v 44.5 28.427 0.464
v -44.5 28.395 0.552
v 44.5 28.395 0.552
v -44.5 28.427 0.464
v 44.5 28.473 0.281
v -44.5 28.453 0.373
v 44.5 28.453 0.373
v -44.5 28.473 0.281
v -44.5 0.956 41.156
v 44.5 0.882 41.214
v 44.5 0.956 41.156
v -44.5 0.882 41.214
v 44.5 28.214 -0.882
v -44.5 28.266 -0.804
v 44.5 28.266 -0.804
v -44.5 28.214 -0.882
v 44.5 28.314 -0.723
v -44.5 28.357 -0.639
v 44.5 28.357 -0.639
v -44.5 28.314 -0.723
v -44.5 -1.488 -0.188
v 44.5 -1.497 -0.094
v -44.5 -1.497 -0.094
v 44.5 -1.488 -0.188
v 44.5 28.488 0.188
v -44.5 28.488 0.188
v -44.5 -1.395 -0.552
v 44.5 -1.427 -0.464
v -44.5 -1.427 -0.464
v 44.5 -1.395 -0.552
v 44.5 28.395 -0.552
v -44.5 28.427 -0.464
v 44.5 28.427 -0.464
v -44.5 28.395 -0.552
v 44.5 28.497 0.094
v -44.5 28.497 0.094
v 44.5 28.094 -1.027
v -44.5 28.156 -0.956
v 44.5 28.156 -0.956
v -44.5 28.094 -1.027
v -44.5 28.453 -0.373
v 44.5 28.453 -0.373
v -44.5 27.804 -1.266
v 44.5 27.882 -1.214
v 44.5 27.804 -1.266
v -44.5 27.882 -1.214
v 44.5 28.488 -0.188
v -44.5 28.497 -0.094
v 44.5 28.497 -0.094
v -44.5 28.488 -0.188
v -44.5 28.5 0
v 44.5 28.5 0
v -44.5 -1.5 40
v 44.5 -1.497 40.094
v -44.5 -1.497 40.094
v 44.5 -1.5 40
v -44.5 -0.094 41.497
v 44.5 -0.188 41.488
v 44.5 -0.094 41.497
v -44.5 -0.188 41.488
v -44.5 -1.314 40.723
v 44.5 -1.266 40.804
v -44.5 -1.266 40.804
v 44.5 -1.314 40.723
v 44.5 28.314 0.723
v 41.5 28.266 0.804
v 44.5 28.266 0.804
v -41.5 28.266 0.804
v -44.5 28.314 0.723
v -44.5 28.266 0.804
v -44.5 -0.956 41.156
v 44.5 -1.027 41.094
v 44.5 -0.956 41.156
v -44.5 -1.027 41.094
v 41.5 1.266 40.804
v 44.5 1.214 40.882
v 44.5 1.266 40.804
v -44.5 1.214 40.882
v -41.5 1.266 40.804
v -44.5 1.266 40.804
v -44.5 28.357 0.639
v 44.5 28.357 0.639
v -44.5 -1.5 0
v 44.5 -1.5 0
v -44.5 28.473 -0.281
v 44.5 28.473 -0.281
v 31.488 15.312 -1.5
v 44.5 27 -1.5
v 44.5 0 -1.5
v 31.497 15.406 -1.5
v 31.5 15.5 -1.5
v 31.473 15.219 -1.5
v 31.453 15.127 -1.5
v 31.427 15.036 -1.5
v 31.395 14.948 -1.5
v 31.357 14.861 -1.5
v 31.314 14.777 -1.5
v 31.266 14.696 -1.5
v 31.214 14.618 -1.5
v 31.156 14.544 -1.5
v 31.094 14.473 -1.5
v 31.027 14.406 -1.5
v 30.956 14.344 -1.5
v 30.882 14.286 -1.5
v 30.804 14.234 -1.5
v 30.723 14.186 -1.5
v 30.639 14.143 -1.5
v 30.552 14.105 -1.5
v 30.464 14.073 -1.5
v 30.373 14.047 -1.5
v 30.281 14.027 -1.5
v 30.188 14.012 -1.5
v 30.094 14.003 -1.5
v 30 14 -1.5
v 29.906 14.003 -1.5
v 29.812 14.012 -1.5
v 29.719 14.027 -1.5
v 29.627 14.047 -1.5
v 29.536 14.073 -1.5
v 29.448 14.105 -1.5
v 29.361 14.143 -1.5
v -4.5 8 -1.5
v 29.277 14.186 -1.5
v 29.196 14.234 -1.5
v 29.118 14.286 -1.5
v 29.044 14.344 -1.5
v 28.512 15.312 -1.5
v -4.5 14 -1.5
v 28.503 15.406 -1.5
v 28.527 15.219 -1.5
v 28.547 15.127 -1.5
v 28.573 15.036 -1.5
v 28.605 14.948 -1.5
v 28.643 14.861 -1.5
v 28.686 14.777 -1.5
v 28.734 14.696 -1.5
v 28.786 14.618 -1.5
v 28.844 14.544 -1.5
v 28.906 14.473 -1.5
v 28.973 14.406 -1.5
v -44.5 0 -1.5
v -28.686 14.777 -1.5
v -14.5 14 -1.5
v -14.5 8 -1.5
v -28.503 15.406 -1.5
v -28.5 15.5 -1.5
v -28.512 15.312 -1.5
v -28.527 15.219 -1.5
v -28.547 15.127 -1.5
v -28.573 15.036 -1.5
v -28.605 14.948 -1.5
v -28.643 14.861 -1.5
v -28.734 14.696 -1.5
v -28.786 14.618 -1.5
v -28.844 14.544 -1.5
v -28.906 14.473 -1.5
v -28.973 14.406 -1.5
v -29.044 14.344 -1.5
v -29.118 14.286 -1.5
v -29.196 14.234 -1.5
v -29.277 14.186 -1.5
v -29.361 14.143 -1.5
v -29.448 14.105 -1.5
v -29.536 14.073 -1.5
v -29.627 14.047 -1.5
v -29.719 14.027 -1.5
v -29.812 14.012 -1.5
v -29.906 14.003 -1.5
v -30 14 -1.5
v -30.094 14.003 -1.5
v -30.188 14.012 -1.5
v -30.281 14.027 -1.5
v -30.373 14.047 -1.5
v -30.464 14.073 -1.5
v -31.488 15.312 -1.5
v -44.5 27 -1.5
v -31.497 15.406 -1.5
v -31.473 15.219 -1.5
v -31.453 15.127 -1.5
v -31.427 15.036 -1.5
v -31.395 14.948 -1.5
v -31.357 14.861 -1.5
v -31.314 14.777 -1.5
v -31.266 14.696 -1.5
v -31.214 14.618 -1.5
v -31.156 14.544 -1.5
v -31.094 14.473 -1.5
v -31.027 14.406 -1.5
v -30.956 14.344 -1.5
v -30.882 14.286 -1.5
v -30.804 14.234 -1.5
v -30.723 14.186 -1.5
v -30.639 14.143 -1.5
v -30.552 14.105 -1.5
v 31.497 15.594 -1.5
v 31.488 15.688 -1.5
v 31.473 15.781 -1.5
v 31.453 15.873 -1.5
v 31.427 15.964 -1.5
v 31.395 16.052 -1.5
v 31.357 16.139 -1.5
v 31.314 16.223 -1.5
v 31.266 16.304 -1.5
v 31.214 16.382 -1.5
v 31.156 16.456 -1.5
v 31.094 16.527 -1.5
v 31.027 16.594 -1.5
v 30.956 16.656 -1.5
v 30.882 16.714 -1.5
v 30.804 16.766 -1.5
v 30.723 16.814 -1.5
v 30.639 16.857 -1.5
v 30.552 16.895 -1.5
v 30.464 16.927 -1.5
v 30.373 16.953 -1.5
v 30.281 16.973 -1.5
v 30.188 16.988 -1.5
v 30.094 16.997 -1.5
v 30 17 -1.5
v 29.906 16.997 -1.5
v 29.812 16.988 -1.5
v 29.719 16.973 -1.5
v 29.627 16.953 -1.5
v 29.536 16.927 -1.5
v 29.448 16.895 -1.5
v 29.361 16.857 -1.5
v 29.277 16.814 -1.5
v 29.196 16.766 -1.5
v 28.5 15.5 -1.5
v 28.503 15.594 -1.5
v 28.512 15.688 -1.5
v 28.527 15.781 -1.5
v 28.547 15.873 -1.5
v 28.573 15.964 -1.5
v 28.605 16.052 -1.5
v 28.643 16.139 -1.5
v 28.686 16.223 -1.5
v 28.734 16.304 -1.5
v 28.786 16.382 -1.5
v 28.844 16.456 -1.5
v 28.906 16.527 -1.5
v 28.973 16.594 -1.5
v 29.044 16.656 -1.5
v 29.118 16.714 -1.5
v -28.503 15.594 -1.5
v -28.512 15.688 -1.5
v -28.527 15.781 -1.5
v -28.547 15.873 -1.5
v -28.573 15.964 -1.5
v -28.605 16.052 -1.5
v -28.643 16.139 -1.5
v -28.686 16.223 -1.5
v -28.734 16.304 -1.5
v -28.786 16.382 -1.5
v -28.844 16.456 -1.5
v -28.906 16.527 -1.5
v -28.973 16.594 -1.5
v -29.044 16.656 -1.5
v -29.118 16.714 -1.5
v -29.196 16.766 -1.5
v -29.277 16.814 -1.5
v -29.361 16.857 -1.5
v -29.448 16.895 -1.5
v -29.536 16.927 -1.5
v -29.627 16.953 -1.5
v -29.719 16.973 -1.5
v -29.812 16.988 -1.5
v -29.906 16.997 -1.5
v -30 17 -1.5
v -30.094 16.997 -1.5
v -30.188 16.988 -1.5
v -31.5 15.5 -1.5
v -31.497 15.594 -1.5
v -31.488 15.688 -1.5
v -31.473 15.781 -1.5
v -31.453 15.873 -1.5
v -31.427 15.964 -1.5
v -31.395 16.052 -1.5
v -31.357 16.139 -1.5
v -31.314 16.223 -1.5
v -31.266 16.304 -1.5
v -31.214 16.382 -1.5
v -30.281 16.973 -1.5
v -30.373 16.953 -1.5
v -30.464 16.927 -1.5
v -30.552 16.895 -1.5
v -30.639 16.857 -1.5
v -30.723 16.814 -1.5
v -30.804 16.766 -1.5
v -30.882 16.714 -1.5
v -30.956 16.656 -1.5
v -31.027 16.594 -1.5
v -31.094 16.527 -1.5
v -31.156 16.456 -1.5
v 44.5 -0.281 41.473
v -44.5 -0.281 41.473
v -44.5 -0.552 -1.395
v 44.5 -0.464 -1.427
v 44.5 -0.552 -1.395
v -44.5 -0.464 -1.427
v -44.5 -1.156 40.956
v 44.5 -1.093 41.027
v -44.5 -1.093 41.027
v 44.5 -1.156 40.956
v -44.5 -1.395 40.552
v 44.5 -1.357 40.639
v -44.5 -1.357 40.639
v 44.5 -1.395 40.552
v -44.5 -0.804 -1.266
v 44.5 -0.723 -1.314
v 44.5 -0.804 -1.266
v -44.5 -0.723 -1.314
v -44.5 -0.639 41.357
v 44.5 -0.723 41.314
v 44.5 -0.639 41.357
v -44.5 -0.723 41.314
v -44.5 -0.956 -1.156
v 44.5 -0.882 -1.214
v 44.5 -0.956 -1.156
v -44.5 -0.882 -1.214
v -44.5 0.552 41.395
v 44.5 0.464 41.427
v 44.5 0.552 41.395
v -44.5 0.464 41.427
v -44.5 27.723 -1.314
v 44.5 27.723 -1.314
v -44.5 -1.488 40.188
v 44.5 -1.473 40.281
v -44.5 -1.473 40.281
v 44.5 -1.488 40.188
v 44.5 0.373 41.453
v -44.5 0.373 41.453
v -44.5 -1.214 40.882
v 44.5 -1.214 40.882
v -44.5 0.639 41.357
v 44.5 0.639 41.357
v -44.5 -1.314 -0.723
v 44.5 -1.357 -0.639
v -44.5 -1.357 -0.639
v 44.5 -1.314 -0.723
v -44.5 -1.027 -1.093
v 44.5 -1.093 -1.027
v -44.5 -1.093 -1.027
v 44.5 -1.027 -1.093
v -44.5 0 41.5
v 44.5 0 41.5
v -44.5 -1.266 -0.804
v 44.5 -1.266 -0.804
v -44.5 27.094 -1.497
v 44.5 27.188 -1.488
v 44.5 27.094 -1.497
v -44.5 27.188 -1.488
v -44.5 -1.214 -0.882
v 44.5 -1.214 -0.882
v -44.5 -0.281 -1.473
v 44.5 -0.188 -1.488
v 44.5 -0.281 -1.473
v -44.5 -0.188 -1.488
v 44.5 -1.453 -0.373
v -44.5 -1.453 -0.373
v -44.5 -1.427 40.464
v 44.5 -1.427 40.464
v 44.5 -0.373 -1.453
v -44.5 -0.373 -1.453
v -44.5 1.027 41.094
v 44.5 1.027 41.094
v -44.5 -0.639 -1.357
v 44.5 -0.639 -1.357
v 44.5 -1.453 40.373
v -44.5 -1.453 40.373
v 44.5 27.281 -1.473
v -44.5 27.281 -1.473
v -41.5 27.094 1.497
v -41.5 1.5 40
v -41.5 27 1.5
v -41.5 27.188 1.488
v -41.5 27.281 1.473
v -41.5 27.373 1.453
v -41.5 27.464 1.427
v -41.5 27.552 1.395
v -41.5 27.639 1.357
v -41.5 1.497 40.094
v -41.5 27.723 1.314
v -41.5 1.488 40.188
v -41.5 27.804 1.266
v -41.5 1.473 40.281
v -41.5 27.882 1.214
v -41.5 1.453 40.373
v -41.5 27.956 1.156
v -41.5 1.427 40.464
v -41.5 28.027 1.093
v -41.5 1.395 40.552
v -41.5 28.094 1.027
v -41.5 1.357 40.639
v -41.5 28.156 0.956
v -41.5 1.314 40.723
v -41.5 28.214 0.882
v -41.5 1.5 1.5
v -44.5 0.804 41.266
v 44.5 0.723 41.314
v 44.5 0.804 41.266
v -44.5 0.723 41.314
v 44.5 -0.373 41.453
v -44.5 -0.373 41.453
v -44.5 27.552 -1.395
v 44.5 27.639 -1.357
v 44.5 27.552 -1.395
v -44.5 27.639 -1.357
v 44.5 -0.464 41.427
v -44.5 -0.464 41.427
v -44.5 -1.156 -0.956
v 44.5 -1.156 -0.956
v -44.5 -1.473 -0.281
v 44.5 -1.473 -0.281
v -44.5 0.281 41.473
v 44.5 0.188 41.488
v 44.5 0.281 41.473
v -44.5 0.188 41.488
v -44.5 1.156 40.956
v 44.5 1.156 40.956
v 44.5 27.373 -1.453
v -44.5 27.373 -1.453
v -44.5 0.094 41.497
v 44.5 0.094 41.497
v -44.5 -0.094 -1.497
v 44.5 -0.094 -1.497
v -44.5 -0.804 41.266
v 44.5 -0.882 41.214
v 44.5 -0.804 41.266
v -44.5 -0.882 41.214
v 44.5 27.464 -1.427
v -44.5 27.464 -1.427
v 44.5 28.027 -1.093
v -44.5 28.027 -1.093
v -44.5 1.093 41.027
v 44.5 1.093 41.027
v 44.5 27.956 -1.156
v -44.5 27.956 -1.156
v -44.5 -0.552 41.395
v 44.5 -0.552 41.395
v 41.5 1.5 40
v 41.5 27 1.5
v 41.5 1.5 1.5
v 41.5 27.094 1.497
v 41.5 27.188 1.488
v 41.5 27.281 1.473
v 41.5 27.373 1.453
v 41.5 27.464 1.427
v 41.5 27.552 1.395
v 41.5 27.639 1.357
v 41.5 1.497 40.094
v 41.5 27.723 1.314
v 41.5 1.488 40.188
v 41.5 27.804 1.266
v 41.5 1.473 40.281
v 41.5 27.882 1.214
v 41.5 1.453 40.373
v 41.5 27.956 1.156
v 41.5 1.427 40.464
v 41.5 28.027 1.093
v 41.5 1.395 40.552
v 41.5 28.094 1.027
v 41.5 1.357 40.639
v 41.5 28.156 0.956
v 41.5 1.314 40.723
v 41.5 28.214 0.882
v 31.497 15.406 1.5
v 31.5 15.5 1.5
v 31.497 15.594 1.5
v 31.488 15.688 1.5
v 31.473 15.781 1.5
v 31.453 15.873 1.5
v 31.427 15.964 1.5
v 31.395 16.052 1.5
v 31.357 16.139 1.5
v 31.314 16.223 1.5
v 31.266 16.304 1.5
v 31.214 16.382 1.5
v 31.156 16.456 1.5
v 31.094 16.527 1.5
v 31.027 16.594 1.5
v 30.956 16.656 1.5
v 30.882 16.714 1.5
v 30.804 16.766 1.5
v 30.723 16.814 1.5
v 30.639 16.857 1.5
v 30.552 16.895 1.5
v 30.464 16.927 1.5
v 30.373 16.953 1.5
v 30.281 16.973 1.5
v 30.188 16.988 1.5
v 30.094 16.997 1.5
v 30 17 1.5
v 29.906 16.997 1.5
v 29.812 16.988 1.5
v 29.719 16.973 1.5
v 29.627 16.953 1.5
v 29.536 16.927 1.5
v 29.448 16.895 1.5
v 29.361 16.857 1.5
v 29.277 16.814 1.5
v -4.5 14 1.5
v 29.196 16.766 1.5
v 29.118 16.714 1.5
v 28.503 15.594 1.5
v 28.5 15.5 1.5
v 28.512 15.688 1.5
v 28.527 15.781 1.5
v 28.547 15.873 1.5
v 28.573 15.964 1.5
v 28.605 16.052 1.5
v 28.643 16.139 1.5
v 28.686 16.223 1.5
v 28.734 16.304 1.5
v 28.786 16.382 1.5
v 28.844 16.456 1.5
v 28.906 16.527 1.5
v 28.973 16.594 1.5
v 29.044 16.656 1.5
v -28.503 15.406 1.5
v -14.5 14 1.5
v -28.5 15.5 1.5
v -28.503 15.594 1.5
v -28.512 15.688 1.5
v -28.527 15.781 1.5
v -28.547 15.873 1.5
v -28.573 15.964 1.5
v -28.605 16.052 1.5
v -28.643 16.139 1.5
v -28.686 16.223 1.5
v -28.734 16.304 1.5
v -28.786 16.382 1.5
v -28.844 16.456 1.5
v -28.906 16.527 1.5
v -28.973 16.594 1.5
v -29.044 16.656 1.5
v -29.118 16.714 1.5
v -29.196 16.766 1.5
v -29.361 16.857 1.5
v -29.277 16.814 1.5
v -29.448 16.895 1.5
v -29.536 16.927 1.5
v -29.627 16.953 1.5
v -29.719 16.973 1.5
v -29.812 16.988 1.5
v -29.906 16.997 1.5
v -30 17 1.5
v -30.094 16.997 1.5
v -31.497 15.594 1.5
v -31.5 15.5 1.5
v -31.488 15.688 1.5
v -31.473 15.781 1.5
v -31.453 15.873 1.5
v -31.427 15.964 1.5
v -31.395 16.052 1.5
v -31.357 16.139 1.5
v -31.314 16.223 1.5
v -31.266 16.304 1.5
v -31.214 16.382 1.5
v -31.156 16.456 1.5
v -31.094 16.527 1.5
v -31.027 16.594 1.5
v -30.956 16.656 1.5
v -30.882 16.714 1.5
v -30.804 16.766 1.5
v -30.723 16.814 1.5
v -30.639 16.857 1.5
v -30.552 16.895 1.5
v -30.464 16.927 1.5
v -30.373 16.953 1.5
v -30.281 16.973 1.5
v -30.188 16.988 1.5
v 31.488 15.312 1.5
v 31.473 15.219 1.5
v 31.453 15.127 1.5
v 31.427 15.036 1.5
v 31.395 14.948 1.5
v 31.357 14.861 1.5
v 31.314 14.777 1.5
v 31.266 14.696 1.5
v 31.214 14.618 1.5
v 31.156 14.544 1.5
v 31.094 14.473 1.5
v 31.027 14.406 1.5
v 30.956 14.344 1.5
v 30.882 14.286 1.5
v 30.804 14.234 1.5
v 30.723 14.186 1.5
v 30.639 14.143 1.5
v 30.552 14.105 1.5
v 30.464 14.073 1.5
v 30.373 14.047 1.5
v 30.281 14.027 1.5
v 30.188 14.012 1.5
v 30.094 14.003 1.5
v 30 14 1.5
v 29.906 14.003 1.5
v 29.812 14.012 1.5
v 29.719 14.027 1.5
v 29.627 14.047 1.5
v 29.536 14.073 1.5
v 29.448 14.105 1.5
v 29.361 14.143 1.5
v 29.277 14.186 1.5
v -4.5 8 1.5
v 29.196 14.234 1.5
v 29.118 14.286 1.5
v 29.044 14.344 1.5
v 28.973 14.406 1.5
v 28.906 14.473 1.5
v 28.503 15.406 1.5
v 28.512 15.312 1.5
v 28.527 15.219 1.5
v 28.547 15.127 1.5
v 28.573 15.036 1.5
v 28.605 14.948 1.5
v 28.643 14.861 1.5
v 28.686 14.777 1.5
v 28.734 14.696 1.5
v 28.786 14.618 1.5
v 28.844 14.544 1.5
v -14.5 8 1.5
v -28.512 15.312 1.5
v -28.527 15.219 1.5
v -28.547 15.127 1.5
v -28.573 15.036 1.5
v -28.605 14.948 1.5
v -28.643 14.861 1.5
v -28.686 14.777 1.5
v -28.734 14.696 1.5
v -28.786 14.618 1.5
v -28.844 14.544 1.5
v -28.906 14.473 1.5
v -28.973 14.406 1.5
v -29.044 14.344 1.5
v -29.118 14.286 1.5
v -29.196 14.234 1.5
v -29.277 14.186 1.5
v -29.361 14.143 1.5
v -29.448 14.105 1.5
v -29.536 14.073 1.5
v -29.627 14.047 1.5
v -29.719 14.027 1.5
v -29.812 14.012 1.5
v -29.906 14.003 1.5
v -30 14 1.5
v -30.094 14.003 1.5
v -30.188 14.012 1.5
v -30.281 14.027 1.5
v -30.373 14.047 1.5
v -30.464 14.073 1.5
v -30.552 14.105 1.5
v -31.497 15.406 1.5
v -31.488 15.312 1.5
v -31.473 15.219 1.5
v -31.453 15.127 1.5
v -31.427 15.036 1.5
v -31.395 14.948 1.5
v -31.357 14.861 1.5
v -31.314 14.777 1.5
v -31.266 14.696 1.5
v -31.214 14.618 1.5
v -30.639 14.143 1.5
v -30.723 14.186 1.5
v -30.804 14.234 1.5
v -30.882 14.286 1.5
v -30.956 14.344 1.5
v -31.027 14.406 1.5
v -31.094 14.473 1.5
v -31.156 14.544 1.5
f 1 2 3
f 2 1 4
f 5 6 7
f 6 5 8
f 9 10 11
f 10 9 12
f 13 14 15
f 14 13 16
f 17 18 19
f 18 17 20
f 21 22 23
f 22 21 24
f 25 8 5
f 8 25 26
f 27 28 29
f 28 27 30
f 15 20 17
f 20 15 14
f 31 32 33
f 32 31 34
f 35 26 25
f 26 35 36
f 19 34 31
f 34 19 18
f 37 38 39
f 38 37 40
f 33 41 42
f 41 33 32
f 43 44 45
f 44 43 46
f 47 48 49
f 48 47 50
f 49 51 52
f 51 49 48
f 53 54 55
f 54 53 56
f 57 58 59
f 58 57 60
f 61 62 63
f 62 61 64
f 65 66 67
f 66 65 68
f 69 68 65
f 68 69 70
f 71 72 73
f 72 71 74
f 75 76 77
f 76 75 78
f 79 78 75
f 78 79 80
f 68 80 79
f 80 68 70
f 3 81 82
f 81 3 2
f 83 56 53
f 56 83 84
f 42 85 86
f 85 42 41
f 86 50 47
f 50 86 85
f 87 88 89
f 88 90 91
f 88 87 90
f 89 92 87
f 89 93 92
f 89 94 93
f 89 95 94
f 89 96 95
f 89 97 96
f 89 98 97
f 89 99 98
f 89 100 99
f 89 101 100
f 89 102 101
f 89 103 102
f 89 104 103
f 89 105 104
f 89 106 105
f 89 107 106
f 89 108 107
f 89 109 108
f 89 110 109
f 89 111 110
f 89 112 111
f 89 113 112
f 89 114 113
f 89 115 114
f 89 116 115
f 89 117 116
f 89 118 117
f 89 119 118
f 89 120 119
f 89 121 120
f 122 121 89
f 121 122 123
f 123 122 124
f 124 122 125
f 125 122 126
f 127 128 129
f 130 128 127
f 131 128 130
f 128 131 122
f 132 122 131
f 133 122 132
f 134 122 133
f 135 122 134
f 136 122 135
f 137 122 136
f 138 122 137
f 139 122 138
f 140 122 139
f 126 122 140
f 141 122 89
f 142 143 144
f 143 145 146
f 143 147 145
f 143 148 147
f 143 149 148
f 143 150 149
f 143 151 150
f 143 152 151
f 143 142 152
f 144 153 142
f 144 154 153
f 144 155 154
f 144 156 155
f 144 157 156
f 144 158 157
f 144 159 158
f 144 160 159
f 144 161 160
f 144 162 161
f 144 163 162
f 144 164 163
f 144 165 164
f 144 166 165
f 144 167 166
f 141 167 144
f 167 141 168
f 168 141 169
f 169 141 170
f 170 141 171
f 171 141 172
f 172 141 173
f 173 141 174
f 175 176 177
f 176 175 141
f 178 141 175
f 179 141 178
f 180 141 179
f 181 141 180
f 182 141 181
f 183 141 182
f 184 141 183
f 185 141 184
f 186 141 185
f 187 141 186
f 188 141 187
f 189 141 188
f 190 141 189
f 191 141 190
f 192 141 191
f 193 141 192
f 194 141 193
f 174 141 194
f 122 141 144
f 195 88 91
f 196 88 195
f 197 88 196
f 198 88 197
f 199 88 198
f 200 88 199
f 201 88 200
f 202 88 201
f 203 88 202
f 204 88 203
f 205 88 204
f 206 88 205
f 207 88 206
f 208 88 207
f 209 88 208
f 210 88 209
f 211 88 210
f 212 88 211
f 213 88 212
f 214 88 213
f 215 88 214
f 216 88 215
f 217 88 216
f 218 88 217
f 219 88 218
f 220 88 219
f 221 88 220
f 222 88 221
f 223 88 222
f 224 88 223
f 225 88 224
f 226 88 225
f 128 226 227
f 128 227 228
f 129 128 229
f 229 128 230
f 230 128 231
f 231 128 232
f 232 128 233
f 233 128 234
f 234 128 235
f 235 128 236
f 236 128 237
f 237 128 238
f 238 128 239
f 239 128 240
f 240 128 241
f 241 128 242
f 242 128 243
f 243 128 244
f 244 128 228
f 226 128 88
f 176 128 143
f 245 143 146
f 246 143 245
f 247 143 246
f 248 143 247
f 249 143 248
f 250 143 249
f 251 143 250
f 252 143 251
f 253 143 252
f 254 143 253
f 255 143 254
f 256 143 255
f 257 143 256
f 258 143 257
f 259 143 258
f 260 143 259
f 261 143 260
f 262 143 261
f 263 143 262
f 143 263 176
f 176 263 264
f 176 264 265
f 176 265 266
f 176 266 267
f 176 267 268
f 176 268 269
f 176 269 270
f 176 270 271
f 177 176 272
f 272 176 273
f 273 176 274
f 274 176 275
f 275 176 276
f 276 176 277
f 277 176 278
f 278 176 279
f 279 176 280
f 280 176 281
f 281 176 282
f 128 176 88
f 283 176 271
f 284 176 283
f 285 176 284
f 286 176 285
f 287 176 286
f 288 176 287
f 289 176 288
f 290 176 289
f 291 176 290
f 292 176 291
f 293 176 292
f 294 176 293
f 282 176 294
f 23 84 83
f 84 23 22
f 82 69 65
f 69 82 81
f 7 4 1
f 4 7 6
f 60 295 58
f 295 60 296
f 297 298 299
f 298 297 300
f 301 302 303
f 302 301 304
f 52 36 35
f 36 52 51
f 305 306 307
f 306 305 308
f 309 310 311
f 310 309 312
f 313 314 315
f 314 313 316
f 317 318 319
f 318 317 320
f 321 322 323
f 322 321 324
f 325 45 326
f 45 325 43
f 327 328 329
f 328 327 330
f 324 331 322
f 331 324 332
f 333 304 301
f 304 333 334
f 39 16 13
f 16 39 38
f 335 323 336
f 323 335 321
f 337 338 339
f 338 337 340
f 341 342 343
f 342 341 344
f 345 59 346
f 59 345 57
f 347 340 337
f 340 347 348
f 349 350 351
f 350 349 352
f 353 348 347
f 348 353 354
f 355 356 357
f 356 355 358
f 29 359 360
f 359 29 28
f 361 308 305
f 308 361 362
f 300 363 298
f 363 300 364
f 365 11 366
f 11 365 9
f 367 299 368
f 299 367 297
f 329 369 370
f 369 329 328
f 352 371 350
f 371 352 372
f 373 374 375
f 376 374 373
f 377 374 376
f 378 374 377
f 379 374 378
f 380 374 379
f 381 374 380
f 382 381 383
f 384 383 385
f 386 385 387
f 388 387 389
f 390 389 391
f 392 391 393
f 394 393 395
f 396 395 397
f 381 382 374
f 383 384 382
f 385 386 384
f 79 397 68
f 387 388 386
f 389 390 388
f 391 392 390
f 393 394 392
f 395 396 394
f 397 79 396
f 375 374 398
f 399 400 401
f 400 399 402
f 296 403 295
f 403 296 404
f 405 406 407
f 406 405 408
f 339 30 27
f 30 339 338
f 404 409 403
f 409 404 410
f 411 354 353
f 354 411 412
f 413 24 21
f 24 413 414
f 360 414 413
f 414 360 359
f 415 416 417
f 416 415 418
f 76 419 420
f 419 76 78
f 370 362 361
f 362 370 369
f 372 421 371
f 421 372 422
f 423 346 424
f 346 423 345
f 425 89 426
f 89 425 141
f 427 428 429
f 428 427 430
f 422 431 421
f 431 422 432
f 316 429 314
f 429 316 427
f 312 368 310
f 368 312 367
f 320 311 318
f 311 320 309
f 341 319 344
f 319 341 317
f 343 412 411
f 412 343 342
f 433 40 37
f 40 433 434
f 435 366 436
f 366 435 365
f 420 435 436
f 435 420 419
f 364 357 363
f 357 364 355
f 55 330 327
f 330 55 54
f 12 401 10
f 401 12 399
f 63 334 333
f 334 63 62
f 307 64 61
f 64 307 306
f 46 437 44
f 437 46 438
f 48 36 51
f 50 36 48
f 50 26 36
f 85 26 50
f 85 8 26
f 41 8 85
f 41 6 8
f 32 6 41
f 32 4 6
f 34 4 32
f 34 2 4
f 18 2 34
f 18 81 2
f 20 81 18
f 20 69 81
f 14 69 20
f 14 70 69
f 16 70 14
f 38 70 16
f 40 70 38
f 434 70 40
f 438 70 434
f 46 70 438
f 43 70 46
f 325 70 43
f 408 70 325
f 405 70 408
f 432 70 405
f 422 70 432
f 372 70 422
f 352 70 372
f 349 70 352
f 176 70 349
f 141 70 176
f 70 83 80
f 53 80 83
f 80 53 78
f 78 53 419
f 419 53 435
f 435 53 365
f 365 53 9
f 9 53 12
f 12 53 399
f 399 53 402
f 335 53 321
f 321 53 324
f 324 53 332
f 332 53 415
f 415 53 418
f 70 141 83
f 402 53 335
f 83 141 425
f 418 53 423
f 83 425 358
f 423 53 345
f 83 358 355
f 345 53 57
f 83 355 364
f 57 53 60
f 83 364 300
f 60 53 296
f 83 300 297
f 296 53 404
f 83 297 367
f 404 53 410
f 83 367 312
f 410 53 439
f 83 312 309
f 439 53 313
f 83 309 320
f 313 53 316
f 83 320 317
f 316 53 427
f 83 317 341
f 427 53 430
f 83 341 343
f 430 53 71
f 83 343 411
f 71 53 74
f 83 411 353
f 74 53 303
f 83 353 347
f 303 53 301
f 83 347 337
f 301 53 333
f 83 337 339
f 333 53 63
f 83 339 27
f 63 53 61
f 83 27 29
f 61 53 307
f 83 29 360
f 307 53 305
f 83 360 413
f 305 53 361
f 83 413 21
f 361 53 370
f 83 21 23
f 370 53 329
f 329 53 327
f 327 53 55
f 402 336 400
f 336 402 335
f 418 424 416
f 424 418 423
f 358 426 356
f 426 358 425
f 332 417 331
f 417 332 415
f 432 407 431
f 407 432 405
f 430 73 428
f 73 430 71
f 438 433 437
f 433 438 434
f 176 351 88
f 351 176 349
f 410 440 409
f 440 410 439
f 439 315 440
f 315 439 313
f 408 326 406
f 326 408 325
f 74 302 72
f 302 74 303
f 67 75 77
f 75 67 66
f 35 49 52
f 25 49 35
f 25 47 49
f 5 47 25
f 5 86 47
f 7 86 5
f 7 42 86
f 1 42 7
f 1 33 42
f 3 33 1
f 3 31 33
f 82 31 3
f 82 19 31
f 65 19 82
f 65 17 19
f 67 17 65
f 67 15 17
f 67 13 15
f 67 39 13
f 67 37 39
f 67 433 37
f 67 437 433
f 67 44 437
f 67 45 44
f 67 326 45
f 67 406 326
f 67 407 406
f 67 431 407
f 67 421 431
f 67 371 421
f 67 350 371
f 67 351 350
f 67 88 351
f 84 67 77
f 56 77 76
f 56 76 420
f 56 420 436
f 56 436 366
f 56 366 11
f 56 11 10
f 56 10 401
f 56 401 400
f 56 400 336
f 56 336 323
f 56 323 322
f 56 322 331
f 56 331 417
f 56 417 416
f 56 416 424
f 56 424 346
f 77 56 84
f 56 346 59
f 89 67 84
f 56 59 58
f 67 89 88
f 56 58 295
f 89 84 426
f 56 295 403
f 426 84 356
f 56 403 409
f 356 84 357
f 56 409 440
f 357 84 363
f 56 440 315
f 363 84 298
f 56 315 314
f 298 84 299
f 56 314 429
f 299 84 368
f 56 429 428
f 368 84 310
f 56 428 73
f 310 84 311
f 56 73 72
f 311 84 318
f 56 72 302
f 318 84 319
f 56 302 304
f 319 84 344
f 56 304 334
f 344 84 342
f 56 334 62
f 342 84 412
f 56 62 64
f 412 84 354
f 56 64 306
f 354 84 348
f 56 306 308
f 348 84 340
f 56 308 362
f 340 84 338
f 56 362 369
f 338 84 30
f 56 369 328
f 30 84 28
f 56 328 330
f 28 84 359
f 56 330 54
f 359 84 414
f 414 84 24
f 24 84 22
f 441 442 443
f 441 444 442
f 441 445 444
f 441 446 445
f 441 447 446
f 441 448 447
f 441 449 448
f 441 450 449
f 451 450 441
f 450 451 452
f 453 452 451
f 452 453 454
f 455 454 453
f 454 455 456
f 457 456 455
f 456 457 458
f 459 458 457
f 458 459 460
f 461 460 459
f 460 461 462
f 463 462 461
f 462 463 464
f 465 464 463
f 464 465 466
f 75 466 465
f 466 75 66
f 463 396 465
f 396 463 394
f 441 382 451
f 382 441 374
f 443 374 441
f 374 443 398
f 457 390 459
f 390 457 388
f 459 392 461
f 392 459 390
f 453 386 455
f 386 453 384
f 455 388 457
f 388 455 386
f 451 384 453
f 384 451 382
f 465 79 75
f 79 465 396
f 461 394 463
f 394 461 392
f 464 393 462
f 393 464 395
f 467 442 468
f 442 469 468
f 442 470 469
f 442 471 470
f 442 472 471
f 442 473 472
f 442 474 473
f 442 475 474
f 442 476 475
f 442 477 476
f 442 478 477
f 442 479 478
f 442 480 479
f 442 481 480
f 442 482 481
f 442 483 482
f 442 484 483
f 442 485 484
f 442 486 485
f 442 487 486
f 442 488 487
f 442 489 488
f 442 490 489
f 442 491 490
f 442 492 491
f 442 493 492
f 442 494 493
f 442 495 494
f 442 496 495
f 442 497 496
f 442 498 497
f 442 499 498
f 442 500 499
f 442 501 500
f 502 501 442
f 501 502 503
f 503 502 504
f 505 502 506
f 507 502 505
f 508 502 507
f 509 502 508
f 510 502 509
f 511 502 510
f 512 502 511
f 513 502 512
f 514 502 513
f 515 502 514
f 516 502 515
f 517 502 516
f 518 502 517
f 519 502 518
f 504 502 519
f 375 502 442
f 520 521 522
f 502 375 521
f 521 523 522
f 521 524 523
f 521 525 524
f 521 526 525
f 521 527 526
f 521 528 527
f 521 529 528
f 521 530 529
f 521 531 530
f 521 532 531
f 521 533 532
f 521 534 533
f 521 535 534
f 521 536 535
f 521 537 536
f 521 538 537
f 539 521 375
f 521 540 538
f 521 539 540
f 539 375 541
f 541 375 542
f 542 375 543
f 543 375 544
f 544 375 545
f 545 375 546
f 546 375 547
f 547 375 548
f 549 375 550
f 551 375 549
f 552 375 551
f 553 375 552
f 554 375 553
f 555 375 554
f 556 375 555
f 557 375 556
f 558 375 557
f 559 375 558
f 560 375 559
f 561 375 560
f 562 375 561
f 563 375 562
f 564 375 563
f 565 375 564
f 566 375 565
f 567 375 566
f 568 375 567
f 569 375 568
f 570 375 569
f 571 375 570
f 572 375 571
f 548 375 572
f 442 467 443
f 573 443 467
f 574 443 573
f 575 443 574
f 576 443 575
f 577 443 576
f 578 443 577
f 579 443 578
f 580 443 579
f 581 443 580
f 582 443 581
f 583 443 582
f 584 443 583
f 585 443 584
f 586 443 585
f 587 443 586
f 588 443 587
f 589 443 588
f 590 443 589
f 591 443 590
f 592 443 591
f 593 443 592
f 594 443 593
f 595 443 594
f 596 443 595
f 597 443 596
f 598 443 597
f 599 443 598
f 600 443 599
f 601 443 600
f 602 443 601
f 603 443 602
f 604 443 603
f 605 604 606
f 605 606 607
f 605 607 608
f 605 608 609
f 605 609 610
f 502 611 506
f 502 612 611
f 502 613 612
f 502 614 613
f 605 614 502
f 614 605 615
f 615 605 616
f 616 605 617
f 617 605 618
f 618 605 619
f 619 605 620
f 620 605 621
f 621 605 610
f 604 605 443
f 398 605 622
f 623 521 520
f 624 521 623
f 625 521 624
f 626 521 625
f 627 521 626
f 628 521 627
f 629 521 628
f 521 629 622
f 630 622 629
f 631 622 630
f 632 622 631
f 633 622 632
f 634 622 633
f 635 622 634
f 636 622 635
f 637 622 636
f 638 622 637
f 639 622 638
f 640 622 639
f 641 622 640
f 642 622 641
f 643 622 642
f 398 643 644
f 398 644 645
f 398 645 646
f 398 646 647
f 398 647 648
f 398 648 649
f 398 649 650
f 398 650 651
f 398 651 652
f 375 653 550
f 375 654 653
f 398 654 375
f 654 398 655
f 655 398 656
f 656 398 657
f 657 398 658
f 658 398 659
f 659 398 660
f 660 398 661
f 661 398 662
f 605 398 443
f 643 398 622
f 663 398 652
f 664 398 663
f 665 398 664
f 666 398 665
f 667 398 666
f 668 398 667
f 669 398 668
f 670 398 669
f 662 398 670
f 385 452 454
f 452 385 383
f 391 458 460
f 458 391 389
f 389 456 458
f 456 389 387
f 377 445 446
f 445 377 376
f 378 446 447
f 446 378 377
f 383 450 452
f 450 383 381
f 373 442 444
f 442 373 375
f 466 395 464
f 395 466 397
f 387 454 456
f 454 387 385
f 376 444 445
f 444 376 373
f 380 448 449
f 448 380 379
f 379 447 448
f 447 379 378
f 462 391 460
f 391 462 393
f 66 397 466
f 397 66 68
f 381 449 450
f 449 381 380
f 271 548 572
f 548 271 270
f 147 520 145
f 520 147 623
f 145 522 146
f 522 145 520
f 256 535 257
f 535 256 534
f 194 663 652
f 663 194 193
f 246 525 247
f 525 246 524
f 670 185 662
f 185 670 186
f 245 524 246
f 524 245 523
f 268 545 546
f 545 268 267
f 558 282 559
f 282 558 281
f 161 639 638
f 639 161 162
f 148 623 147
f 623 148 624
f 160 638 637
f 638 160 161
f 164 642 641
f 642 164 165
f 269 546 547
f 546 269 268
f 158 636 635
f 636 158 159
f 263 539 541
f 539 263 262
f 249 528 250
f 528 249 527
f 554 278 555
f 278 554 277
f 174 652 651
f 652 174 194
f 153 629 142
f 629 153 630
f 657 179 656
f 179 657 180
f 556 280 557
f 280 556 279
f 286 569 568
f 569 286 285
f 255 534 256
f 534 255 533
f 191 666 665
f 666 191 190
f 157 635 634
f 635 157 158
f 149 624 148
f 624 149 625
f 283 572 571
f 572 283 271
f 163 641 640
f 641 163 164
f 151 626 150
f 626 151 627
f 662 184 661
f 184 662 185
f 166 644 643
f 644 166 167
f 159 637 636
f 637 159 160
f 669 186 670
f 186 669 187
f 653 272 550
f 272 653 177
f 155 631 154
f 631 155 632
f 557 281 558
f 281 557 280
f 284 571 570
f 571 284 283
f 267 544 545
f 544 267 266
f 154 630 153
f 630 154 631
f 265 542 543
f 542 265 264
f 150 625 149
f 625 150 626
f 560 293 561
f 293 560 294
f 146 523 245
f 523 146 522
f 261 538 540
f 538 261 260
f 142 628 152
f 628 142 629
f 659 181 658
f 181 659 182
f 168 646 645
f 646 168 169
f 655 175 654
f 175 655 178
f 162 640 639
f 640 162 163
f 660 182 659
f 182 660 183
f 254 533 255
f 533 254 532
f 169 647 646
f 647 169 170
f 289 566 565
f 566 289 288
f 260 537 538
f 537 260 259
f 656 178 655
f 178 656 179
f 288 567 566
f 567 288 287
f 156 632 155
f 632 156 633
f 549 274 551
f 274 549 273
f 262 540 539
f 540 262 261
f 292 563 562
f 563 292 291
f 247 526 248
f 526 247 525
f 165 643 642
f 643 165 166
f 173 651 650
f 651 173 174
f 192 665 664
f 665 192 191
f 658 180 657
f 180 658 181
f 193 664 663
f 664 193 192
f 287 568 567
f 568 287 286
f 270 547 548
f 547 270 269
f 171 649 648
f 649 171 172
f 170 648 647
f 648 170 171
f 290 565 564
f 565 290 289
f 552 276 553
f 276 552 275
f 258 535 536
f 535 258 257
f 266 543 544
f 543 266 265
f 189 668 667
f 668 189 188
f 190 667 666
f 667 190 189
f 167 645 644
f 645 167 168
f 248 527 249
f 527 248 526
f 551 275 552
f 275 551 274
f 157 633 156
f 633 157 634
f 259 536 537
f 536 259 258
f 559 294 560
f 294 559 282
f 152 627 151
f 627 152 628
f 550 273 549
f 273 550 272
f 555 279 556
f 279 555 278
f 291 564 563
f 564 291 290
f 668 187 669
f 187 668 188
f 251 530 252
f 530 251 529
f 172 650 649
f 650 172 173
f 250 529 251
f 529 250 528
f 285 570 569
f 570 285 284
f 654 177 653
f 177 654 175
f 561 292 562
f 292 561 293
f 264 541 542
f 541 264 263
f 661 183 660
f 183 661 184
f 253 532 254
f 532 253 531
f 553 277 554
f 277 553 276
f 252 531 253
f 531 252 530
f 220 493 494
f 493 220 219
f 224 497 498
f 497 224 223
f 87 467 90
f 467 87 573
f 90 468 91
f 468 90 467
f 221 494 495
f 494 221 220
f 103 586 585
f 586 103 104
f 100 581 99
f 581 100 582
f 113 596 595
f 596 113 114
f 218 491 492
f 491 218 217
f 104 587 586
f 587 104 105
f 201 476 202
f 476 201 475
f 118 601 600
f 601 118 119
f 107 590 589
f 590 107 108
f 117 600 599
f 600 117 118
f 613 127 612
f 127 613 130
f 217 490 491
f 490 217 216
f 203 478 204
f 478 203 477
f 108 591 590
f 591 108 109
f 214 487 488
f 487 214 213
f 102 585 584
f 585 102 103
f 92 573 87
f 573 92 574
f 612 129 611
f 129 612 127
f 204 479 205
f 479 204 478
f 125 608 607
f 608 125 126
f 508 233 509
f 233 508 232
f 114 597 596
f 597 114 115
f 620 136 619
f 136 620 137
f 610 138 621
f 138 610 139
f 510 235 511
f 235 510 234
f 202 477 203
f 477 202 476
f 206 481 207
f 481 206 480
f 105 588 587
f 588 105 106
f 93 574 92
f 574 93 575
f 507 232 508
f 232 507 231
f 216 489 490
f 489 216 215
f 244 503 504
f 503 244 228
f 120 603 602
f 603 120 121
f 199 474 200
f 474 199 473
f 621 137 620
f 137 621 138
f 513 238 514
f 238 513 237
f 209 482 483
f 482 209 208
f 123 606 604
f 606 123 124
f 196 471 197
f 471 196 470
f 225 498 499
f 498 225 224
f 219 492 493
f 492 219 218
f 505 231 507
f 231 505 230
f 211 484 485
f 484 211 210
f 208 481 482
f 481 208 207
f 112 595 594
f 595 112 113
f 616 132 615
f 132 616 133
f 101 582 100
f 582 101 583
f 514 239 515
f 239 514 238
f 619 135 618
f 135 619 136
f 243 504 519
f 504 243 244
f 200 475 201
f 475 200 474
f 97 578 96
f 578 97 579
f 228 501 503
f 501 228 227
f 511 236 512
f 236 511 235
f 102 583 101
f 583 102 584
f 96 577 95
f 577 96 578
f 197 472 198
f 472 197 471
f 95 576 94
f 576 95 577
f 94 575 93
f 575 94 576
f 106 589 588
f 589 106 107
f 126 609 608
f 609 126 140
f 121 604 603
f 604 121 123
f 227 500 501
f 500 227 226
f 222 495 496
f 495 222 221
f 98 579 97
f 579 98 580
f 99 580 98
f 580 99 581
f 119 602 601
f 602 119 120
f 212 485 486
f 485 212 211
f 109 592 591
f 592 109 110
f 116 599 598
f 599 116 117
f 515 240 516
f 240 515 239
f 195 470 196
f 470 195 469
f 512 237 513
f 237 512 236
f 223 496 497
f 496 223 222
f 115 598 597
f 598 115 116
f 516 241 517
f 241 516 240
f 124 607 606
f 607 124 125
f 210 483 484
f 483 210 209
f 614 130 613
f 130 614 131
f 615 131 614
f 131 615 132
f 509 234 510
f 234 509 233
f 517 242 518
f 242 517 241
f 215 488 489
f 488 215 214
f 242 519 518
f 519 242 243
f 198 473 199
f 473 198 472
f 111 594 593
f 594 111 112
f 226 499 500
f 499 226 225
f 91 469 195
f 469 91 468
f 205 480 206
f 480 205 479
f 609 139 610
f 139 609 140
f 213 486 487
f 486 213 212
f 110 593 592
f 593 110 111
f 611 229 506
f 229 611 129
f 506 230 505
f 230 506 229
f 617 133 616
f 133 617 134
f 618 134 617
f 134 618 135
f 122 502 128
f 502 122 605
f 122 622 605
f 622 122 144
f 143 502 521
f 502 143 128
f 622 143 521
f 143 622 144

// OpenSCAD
// file: ../sensors_box.scad
$fn=100;
width = 85;
length = 40;
depth = 30;

corner_r = 3;
wall_th = 3;

lid_depth = 0;
lid_width = 0;

M3_screw_diameter=3;

rubber_band_size=2.1;
attach_h=15;

translation = 50; //Oddialovanie casti 

module triangle(x1,y1,z1,x2,y2,z2,x3,y3,z3,h){    
    hull(){
    translate([x1,y1,z1]){
        rotate([0,90,0]){
        cylinder(r=h,h=2*h,center=true);
        }}
    translate([x2,y2,z2]){
        rotate([0,90,0]){
        cylinder(r=h,h=2*h,center=true);
        }}
    translate([x3,y3,z3]){
        rotate([0,90,0]){
        cylinder(r=h,h=2*h,center=true);
        }}
    }
}
module shelf(width,length,depth,wall_th){
x1_1=width/2-wall_th;
y1_1=length-wall_th;
z1_1=0;
x2_1=width/2-wall_th;
y2_1=0;
z2_1=0;
x3_1=width/2-wall_th;
y3_1=0;
z3_1=depth;
h=wall_th/2;
x1_2=-(width/2-wall_th);
y1_2=length-wall_th;
z1_2=0;
x2_2=-(width/2-wall_th);
y2_2=0;
z2_2=0;
x3_2=-(width/2-wall_th);
y3_2=0;
z3_2=depth;
triangle(x1=x1_1,
         y1=y1_1,
         z1=z1_1,
         x2=x2_1,
         y2=y2_1,
         z2=z2_1,
         x3=x3_1,
         y3=y3_1,
         z3=z3_1,h=wall_th/2);
triangle(x1=x1_2,
         y1=y1_2,
         z1=z1_2,
         x2=x2_2,
         y2=y2_2,
         z2=z2_2,
         x3=x3_2,
         y3=y3_2,
         z3=z3_2,h=wall_th/2);
hull(){
    triangle(x1=x1_1,
             y1=y1_1,
             z1=z1_1,
             x2=x1_2,
             y2=y1_2,
             z2=z1_2,
             x3=x2_1,
             y3=y2_1,
             z3=z2_1,h=wall_th/2);
    triangle(x1=x1_1,
             y1=y1_1,
             z1=z1_1,
             x2=x1_2,
             y2=y1_2,
             z2=z1_2,
             x3=x2_2,
             y3=y2_2,
             z3=z2_2,h=wall_th/2);
}

hull(){
    triangle(x1=x2_1,
             y1=y2_1,
             z1=z2_1,
             x2=x3_1,
             y2=y3_1,
             z2=z3_1,
             x3=x2_2,
             y3=y2_2,
             z3=z2_2,h=wall_th/2);
    triangle(x1=x2_1,
             y1=y2_1,
             z1=z2_1,
             x2=x3_1,
             y2=y3_1,
             z2=z3_1,
             x3=x3_2,
             y3=y3_2,
             z3=z3_2,h=wall_th/2);
}
}


module sensors_box_sensor_part(){
difference(){
union(){
shelf(width, length, depth,wall_th);
/*translate([0,-wall_th-translation, depth+wall_th+1]){
    rotate([0,180,0]){
        shelf(width+2*wall_th+1, length+wall_th, depth-wall_th,wall_th);
        }
}*/

}
//hole for ultrasonic sensor
translate([-width/2+13+wall_th, length-17-wall_th,-5]){
cylinder(r=17/2,h=wall_th+5);
}

//hole for lidar

translate([width/2-10-wall_th-34,length-wall_th-16-5,-2]){
cube([34,16,wall_th+5]);
}

//hole for cables
translate([-width/2+wall_th+10+15,-150,wall_th+17]){
//cube([wall_th+2,10,6]);
cube([10,wall_th+500,6]);
}

for(x=[-30,30]) //diery pre sruby
    translate([x,300,attach_h+7/2]){
                rotate([90,0,0]){
                    cylinder(r=M3_screw_diameter/2,h=500); 
            }}
}
}


module sensors_box_upper_part(){
difference(){
union(){

translate([0,-wall_th-translation, depth+wall_th+1]){
    rotate([0,180,0]){
        shelf(width+2*wall_th+1, length+wall_th, depth-wall_th,wall_th);
        }
}

}

//hole for cables
translate([-width/2+wall_th+10+15,-150,wall_th+17]){
//cube([wall_th+2,10,6]);
cube([10,wall_th+500,6]);
}

for(x=[-30,30]) //diery pre sruby
    translate([x,300,attach_h+7/2]){
                rotate([90,0,0]){
                    cylinder(r=M3_screw_diameter/2,h=500); 
            }}
}
}

//sensors_box_upper_part();
//sensors_box_sensor_part();
// main file
use <../sensors_box.scad>
include <../sensors_box.scad>
rotate([90,0,0]){
translate([0,translation+wall_th,-(depth+wall_th+1)]){
    
sensors_box_upper_part();
}}
